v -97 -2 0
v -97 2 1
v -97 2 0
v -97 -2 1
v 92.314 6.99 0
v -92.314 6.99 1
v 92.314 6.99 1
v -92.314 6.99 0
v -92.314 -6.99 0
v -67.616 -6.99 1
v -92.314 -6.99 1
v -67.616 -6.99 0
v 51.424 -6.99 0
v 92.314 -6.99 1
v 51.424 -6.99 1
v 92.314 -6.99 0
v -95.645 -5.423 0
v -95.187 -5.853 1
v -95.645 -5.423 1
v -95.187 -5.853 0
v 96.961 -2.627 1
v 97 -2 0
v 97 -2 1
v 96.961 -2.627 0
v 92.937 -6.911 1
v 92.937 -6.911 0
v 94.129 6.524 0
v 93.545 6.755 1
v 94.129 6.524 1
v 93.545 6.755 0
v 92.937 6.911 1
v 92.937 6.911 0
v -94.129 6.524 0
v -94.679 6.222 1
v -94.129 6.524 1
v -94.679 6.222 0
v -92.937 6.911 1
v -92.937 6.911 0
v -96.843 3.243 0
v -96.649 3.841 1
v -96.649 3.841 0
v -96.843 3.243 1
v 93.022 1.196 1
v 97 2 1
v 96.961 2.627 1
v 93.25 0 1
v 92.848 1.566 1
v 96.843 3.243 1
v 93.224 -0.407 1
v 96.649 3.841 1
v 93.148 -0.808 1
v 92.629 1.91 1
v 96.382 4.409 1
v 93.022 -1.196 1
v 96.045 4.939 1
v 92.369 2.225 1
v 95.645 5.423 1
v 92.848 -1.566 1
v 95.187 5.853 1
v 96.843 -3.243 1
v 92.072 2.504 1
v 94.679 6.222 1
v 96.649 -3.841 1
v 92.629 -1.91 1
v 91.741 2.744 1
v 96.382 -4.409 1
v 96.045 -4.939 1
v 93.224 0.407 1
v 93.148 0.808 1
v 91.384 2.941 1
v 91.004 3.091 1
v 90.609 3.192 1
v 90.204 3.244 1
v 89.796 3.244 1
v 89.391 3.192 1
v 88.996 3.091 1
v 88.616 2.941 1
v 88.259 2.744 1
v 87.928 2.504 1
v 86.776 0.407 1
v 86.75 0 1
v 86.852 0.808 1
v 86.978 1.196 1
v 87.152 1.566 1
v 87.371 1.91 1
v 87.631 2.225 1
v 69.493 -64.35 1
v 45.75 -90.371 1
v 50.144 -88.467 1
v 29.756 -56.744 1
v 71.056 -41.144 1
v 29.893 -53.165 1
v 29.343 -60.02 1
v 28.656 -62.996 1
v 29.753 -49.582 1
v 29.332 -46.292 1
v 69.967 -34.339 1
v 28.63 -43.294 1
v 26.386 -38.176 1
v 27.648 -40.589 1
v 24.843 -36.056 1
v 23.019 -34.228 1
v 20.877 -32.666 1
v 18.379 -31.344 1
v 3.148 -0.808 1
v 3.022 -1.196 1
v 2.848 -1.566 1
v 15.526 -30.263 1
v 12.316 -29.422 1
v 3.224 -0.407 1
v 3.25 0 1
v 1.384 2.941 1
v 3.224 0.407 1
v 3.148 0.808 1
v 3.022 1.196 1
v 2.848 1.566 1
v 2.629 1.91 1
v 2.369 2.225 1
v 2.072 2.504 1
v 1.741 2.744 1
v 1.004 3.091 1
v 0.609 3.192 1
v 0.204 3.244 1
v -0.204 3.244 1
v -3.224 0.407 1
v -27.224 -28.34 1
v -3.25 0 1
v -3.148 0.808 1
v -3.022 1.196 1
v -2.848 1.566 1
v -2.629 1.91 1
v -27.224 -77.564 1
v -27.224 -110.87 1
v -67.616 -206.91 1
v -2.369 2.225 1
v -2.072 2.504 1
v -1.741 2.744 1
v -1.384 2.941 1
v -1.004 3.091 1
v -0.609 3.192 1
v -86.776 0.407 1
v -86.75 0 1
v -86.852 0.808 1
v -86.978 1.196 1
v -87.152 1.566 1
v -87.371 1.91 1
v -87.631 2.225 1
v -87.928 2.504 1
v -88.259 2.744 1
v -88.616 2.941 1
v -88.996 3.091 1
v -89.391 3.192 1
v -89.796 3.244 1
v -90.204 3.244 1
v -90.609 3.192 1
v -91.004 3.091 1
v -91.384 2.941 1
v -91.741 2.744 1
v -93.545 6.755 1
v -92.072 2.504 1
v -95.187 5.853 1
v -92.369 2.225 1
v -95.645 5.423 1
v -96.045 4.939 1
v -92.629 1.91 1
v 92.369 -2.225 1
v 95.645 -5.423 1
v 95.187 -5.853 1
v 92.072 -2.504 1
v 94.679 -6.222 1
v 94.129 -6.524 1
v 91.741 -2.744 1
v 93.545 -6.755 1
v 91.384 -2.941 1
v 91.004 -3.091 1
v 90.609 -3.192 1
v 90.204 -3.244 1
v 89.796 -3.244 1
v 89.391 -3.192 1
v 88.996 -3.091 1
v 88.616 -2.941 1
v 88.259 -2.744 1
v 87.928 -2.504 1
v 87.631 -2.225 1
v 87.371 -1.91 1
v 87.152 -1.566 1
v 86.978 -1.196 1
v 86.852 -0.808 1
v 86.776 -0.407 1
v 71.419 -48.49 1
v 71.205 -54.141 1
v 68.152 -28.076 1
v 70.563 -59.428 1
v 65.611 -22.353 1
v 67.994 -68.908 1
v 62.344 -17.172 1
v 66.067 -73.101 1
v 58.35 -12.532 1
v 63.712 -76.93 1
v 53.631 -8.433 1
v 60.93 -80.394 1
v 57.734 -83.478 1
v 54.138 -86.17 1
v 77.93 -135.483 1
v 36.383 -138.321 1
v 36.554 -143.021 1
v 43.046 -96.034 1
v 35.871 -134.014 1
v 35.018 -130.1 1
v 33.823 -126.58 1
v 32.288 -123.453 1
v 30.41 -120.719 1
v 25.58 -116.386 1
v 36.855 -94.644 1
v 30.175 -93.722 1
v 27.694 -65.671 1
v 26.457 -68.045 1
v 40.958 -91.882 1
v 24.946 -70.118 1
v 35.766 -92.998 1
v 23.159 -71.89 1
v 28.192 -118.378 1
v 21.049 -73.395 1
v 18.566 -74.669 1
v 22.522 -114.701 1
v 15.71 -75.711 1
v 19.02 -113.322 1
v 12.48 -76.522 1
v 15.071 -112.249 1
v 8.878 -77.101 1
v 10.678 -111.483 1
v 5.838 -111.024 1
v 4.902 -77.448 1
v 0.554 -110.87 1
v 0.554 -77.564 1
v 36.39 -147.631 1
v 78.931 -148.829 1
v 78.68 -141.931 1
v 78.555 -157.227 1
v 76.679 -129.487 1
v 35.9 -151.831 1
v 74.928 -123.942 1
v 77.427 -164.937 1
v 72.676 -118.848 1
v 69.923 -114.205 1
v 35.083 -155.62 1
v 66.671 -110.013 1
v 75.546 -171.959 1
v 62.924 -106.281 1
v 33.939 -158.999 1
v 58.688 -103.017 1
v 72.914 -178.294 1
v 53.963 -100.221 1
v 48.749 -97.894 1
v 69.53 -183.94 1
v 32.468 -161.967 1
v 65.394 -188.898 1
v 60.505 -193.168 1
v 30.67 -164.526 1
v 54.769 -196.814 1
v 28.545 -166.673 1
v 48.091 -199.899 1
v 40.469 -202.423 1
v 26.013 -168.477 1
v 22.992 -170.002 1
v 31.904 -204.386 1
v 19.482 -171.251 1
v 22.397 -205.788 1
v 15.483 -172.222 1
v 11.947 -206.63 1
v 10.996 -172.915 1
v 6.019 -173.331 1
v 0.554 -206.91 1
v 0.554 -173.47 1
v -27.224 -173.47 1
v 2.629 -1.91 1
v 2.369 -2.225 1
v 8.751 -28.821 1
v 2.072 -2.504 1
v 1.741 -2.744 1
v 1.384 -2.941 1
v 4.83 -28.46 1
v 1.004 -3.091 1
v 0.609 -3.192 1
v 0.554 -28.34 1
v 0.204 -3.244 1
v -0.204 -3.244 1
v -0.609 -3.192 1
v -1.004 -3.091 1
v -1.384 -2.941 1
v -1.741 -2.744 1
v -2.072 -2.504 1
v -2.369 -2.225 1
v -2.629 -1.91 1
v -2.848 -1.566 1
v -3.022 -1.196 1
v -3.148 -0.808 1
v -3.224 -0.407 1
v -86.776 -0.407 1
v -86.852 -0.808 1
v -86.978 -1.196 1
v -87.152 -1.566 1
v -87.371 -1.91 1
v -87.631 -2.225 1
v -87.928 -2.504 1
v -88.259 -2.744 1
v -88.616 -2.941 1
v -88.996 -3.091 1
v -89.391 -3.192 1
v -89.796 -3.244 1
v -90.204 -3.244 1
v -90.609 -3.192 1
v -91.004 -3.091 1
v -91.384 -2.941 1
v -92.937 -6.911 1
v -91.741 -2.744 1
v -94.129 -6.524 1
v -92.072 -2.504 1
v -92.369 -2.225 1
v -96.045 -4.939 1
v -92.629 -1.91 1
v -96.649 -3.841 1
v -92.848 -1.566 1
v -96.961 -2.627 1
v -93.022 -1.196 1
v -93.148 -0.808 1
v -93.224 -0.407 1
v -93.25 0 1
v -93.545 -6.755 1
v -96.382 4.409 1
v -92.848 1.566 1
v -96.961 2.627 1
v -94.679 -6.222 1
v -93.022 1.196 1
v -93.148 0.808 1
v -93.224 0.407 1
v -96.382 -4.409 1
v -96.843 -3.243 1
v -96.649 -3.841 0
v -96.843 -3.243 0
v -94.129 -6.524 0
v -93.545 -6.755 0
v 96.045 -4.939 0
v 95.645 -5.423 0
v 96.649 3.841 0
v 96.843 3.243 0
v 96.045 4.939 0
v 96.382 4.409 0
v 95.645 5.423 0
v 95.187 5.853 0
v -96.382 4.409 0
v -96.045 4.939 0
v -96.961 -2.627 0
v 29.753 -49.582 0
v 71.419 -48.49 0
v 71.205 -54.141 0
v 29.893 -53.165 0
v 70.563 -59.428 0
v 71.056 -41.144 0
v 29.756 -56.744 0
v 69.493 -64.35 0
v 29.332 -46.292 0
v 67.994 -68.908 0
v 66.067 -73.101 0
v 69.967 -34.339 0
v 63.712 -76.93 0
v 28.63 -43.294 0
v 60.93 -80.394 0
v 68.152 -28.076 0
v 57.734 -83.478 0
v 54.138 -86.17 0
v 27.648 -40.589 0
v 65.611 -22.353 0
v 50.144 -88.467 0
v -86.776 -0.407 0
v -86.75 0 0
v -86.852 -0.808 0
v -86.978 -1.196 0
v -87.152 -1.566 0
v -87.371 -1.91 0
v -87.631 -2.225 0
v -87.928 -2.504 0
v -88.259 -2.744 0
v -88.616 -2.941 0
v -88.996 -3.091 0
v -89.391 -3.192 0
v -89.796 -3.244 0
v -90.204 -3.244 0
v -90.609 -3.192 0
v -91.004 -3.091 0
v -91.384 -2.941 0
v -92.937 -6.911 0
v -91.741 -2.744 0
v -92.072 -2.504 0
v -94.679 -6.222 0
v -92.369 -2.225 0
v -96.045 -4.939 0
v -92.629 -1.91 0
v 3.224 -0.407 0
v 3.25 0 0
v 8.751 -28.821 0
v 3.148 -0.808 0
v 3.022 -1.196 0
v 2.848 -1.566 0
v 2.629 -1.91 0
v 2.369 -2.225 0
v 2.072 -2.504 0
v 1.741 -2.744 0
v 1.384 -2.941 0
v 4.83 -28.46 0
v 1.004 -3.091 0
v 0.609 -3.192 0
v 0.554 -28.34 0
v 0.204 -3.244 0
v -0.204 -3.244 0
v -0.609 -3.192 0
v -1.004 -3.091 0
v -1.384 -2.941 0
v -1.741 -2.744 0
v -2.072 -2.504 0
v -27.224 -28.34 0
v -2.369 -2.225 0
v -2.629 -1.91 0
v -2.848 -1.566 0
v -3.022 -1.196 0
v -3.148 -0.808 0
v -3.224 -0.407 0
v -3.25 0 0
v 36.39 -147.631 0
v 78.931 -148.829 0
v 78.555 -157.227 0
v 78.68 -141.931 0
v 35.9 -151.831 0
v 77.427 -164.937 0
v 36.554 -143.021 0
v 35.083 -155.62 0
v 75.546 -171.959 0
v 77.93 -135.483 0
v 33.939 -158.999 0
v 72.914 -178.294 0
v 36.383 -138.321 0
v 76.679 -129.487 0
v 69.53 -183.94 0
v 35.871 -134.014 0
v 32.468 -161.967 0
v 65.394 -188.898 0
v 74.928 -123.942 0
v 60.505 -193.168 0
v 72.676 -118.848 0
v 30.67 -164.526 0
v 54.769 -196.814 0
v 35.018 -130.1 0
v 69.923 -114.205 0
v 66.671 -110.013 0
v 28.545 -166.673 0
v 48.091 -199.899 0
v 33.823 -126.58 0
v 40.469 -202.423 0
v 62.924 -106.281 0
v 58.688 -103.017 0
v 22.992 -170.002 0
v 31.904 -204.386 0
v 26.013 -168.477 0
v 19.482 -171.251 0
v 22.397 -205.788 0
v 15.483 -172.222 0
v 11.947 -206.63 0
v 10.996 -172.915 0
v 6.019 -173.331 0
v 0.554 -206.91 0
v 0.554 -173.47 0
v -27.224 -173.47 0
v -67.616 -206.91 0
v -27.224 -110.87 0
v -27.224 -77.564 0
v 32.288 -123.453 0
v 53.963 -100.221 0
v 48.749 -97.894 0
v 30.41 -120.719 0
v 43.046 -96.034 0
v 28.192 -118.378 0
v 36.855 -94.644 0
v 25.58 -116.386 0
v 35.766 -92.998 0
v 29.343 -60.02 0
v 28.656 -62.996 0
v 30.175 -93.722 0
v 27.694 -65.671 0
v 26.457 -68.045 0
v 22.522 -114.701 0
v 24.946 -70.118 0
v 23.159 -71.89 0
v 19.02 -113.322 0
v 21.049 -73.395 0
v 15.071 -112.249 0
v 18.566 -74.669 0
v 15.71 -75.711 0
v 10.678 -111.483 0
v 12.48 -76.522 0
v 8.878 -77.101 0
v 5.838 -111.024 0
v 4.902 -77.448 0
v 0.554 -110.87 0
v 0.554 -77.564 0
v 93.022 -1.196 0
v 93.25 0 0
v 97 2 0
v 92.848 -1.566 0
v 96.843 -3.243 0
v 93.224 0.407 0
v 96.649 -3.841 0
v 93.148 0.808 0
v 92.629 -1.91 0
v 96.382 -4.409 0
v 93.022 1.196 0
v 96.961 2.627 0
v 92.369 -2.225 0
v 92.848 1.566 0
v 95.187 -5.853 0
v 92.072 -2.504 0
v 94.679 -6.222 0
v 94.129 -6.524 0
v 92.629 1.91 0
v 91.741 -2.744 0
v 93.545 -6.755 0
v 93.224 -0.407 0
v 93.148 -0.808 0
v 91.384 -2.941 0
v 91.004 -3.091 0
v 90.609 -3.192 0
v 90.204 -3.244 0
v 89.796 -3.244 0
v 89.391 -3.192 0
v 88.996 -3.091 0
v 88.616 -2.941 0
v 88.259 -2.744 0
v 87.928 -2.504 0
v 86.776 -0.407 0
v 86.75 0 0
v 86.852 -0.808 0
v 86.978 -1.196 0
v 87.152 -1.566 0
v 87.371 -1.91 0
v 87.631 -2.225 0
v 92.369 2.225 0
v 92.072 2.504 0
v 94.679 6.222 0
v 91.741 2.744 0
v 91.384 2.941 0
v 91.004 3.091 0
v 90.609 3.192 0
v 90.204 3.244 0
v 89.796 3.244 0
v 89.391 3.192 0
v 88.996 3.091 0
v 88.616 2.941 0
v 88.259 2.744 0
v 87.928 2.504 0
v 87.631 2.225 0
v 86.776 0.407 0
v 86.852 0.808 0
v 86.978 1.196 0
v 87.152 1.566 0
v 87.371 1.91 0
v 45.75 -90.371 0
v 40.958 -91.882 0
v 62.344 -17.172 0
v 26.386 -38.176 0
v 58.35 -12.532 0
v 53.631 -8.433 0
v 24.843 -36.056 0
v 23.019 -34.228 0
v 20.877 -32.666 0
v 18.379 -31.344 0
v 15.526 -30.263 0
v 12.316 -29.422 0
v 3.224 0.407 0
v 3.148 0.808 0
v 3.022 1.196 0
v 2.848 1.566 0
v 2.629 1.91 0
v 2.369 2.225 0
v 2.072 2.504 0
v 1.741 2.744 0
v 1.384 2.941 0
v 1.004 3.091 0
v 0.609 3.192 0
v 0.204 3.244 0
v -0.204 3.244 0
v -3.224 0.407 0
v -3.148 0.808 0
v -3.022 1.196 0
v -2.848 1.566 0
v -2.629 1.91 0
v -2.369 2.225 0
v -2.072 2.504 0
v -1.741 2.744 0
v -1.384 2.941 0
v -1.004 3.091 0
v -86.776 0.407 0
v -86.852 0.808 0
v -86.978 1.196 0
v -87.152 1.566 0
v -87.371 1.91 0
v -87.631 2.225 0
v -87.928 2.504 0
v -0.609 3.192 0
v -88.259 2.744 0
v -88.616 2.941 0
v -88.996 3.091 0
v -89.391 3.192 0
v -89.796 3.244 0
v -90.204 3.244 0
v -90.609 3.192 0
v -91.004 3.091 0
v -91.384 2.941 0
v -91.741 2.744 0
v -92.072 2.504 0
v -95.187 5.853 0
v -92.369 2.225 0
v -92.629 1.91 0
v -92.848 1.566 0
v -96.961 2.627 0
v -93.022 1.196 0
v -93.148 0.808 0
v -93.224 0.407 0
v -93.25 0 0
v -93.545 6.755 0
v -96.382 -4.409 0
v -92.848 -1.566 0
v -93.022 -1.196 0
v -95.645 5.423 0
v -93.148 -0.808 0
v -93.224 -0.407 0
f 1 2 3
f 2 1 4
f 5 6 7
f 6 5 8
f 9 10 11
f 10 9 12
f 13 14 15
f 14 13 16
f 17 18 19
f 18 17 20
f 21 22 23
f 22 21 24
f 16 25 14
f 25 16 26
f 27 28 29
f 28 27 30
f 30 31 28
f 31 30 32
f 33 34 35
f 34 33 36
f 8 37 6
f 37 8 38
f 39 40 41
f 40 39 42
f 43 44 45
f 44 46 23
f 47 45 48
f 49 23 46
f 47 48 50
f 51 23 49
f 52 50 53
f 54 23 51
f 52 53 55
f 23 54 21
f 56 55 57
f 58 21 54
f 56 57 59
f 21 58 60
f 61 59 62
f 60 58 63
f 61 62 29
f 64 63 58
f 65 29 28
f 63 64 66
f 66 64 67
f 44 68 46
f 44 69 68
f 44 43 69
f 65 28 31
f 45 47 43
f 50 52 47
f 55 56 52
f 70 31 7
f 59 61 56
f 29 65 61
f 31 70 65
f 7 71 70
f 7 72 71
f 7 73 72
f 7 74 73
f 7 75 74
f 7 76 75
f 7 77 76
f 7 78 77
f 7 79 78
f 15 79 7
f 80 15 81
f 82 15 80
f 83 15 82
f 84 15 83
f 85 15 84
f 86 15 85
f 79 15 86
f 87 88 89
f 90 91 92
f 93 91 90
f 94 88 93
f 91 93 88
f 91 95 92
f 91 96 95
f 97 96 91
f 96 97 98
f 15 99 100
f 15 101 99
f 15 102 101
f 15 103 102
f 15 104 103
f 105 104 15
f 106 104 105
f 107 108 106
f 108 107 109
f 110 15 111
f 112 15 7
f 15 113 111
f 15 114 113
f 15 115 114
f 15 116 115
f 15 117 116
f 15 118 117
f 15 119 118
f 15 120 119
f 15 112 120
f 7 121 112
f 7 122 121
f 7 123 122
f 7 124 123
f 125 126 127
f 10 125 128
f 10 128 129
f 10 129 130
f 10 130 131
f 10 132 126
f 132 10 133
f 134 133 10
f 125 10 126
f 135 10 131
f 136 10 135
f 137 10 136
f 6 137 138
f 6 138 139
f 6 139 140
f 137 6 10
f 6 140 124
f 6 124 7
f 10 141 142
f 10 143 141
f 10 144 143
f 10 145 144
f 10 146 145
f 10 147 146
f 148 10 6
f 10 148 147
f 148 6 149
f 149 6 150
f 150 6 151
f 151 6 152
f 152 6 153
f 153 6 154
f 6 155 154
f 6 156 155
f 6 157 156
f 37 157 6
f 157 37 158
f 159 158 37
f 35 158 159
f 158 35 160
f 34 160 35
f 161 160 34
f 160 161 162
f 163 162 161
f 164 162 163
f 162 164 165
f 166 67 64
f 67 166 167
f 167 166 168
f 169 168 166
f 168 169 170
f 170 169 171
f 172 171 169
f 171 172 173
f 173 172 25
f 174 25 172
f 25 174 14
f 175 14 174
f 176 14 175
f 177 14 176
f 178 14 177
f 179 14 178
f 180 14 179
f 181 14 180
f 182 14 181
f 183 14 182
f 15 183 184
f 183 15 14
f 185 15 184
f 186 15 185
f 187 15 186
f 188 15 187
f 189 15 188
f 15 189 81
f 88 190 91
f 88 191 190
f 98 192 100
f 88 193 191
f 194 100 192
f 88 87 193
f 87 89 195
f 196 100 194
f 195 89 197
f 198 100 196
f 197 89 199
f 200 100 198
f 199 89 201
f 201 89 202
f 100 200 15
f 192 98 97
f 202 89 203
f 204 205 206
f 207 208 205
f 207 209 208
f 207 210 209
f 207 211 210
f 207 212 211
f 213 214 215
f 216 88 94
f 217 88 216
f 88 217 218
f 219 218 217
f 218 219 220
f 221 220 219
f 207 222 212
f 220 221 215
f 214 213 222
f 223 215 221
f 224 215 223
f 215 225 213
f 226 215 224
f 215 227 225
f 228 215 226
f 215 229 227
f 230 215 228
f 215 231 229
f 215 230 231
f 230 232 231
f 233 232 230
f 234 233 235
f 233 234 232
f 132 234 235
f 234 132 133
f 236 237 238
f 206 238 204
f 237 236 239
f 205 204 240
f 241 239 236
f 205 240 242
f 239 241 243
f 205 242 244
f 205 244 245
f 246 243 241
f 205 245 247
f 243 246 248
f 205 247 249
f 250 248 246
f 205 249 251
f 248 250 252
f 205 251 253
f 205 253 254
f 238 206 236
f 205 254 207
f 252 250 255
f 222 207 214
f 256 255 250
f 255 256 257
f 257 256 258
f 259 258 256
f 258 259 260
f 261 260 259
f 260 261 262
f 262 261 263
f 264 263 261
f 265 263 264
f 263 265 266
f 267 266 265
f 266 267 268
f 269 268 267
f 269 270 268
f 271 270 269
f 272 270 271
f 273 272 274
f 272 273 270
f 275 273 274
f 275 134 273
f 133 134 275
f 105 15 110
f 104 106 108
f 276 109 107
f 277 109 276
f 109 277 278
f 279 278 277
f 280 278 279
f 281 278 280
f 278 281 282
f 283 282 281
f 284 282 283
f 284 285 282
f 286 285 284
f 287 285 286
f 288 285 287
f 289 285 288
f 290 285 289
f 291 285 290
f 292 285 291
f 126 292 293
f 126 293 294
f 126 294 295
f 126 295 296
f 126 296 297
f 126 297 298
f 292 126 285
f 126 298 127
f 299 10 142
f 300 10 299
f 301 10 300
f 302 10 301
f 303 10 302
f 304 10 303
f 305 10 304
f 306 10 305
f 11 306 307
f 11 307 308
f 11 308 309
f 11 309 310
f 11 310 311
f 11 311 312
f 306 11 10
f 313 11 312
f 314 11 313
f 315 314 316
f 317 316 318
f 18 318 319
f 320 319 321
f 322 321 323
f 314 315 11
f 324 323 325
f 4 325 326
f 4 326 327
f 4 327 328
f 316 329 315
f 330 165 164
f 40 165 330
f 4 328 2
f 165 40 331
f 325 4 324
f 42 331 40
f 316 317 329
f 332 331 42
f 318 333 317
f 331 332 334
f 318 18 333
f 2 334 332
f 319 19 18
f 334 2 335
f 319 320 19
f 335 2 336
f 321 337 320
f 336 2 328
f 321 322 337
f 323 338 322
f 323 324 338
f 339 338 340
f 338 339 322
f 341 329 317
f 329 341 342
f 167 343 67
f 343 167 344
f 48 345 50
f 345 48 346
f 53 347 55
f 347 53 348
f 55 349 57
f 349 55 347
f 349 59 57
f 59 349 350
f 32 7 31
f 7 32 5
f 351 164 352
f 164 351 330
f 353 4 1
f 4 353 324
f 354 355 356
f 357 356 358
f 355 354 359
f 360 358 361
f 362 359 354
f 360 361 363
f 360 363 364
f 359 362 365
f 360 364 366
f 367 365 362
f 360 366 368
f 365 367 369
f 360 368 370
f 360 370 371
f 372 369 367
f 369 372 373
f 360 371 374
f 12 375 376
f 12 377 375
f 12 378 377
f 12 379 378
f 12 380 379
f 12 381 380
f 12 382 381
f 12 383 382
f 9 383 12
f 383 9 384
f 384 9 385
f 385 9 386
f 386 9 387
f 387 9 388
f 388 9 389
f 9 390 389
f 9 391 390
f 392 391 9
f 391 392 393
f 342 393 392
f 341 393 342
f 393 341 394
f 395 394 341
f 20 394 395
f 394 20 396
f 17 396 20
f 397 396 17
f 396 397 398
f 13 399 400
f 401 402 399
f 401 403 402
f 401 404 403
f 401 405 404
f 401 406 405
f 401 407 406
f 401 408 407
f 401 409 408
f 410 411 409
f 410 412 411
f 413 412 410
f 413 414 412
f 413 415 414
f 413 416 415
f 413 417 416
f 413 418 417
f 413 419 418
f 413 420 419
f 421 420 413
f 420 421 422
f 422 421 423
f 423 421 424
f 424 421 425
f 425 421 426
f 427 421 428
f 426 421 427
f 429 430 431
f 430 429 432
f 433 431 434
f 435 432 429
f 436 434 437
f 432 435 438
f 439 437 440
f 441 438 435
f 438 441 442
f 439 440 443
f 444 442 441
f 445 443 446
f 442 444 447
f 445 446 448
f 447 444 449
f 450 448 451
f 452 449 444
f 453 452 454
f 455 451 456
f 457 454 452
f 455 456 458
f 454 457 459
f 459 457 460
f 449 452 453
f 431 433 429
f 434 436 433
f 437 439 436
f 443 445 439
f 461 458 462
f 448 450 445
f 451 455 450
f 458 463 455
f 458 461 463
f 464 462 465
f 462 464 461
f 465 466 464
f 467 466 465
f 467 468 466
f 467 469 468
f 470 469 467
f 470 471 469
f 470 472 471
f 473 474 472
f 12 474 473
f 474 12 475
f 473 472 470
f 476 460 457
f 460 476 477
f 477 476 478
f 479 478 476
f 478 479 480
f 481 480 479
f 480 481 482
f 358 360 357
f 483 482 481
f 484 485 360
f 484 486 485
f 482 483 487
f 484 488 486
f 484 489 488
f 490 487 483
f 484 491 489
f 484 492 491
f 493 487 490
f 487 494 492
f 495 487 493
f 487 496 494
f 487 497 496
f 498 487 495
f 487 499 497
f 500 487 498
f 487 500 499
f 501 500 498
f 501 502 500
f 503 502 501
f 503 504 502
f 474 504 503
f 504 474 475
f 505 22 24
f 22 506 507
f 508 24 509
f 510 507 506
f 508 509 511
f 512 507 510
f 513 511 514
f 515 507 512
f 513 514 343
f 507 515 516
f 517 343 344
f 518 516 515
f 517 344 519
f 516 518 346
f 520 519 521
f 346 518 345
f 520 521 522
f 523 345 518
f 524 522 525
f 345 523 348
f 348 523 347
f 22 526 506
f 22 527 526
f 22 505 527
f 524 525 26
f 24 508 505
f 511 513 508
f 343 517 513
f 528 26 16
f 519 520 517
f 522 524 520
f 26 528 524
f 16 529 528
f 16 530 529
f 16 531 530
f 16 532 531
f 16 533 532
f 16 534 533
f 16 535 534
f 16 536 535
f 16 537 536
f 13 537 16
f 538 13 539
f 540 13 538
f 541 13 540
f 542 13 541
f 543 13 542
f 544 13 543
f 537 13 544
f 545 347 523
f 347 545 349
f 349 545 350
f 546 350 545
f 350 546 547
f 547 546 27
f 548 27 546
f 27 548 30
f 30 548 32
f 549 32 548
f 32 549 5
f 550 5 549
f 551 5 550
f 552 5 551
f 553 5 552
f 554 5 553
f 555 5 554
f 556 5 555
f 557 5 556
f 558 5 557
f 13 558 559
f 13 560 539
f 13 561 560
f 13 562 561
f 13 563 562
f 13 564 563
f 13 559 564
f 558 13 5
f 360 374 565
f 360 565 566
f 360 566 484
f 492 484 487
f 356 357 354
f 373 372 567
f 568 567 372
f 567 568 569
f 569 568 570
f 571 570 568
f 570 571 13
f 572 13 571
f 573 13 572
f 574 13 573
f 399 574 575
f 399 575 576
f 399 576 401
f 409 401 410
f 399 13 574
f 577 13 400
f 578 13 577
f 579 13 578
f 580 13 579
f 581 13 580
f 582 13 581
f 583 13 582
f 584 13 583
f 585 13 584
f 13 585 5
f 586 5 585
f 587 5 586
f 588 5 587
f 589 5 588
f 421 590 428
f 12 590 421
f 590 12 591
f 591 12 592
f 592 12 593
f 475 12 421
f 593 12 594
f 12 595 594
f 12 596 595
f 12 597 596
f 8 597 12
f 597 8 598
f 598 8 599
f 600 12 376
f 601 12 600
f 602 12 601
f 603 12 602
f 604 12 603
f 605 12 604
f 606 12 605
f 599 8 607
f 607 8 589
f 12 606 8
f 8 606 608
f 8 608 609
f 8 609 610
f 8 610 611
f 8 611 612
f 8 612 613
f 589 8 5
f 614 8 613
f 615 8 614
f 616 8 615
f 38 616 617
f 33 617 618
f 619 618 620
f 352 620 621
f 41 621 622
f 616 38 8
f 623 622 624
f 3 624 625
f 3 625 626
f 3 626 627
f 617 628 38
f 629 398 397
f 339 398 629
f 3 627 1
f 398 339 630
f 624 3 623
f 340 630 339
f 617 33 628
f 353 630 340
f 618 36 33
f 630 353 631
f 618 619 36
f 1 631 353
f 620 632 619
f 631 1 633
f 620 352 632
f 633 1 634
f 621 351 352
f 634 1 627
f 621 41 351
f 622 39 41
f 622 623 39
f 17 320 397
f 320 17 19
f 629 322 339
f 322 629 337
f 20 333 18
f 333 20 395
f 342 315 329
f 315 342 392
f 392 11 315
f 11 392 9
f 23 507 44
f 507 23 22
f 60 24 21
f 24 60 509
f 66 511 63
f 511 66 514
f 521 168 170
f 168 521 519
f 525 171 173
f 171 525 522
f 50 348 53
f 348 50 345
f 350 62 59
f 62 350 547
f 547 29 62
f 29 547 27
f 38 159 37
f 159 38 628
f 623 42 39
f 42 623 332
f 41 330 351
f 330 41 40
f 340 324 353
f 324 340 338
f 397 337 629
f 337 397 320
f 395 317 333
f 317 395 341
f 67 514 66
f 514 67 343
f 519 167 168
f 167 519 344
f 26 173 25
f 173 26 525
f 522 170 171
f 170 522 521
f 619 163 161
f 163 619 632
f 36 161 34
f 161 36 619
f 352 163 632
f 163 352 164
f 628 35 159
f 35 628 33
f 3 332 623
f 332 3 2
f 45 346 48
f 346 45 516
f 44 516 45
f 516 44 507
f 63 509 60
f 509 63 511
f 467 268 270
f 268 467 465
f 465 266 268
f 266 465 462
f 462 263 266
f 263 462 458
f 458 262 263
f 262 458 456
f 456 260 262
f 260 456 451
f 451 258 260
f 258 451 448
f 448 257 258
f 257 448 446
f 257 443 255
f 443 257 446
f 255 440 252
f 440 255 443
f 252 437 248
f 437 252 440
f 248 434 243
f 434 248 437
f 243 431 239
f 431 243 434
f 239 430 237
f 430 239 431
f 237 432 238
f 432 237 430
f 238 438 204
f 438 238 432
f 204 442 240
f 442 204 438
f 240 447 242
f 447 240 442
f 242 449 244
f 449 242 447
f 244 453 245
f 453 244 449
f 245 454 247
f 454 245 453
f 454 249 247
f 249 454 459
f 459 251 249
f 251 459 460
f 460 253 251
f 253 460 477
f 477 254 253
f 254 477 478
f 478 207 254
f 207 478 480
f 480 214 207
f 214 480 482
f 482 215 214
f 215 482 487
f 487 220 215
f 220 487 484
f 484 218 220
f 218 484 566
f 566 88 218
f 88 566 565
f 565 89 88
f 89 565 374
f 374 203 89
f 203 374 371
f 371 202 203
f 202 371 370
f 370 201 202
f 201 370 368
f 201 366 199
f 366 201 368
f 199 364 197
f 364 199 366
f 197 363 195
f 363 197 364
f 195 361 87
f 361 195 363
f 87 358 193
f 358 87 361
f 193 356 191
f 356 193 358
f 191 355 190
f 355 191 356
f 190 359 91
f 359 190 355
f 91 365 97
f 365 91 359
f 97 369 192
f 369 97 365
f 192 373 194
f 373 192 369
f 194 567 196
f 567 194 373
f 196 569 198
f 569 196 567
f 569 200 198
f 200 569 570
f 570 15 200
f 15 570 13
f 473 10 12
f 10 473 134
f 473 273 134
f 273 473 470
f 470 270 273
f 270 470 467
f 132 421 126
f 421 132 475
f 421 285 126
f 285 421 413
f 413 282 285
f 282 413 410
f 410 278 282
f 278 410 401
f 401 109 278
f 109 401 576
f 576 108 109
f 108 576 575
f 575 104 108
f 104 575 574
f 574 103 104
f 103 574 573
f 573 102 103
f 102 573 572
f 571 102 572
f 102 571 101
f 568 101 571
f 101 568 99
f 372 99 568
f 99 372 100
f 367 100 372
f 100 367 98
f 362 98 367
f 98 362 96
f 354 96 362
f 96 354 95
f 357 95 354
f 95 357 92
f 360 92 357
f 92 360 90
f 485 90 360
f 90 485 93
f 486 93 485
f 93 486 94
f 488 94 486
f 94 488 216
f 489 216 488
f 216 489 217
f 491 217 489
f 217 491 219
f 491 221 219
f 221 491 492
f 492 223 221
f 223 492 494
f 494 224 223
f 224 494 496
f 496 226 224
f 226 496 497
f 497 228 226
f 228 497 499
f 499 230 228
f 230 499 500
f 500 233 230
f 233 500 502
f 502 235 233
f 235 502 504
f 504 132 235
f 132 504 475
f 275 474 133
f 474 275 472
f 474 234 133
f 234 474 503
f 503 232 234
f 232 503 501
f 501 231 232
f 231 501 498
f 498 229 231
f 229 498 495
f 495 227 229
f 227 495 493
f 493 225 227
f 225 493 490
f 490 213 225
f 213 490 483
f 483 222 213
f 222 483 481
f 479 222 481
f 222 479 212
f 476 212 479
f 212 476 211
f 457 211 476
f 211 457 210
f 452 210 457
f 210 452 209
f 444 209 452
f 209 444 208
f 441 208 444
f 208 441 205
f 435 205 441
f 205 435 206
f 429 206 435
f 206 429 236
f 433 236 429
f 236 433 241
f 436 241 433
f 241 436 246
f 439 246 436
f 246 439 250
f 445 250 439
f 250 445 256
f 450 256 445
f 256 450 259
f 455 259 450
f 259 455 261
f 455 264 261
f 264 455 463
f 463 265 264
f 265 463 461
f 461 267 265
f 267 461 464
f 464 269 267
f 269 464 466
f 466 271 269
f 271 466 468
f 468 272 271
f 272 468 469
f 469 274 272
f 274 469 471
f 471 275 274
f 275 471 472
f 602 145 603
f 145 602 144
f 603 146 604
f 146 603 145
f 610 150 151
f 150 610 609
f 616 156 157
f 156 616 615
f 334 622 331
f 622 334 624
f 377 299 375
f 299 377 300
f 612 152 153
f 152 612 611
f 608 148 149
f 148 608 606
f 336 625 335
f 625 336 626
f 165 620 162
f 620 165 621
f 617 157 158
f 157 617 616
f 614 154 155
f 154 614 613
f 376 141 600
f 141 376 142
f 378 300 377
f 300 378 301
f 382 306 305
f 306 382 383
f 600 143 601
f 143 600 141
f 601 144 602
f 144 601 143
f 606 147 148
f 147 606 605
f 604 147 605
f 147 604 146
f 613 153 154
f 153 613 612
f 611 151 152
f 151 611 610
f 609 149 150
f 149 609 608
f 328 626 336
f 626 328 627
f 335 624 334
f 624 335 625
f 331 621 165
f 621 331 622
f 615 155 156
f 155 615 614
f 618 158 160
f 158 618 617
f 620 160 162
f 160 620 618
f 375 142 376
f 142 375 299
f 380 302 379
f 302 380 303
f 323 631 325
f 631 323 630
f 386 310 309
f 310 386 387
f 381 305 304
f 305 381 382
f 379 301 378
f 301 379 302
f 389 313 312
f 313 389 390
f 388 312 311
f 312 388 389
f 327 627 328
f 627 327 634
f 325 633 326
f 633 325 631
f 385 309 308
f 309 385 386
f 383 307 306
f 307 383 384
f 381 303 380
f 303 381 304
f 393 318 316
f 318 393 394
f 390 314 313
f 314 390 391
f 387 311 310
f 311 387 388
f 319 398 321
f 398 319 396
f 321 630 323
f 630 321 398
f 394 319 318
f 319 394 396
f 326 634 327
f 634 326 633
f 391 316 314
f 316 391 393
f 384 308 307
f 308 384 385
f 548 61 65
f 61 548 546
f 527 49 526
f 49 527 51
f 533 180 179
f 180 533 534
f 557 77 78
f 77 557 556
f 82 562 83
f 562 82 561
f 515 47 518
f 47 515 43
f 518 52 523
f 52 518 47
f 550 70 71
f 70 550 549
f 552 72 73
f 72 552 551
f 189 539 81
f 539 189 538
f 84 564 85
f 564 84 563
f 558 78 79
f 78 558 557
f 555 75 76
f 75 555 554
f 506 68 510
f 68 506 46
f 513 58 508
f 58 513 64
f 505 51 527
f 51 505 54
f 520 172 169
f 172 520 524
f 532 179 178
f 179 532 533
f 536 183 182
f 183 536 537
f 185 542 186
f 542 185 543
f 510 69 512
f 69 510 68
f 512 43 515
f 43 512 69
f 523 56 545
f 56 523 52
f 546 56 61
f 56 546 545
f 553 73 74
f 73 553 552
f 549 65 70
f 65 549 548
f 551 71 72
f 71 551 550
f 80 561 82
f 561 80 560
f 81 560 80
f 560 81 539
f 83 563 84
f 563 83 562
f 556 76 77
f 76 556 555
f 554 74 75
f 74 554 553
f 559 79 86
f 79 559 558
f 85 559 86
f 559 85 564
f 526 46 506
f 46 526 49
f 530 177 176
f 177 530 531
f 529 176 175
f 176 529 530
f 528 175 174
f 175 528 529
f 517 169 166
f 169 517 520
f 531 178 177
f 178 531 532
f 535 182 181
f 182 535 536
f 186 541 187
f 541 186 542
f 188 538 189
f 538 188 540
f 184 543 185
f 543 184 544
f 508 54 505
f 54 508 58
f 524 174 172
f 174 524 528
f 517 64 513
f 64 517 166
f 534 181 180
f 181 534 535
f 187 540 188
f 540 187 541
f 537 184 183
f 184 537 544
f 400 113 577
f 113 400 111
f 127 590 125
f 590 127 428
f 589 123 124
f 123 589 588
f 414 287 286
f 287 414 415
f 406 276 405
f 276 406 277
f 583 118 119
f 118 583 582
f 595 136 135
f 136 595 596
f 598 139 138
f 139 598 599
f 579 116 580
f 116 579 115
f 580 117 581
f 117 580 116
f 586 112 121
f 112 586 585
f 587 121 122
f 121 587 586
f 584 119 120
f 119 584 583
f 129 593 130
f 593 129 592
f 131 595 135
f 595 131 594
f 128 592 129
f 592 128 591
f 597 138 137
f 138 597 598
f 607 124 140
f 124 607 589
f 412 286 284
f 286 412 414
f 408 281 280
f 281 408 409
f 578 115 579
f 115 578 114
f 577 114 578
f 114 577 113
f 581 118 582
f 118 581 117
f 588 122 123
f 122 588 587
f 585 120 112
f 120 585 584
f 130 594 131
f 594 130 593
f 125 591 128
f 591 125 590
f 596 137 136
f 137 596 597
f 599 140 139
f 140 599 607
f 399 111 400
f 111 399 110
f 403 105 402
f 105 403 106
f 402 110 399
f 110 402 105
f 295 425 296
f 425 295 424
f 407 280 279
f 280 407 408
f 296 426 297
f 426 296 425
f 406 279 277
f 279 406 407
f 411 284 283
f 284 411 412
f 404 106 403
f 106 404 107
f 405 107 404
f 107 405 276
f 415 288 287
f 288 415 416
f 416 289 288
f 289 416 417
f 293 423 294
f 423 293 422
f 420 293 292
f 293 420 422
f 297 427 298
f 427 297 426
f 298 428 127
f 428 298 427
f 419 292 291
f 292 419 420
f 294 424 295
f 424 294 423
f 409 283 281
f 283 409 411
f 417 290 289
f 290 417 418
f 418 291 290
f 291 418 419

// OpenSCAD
$fn = 50;


difference() {
	union() {
		translate(v = [0, 0, 0]) {
			rotate(a = [0, 0, 0]) {
				hull() {
					translate(v = [-92.0000000000, 2.0000000000, 0]) {
						rotate(a = [0, 0, 0]) {
							translate(v = [0, 0, 0]) {
								rotate(a = [0, 0, 0]) {
									cylinder(h = 1, r = 5);
								}
							}
						}
					}
					translate(v = [92.0000000000, 2.0000000000, 0]) {
						rotate(a = [0, 0, 0]) {
							translate(v = [0, 0, 0]) {
								rotate(a = [0, 0, 0]) {
									cylinder(h = 1, r = 5);
								}
							}
						}
					}
					translate(v = [-92.0000000000, -2.0000000000, 0]) {
						rotate(a = [0, 0, 0]) {
							translate(v = [0, 0, 0]) {
								rotate(a = [0, 0, 0]) {
									cylinder(h = 1, r = 5);
								}
							}
						}
					}
					translate(v = [92.0000000000, -2.0000000000, 0]) {
						rotate(a = [0, 0, 0]) {
							translate(v = [0, 0, 0]) {
								rotate(a = [0, 0, 0]) {
									cylinder(h = 1, r = 5);
								}
							}
						}
					}
				}
			}
		}
		translate(v = [0, 0, 0]) {
			rotate(a = [0, 0, 0]) {
				linear_extrude(height = 1) {
					text(font = "DejaVu Sans Mono:style=Bold", halign = "center", size = 209.0000000000, text = "B", valign = "top");
				}
			}
		}
	}
	union() {
		translate(v = [-90.0000000000, 0.0000000000, -125.0000000000]) {
			rotate(a = [0, 0, 0]) {
				cylinder(h = 250, r = 3.2500000000);
			}
		}
		translate(v = [90.0000000000, 0.0000000000, -125.0000000000]) {
			rotate(a = [0, 0, 0]) {
				cylinder(h = 250, r = 3.2500000000);
			}
		}
		translate(v = [90.0000000000, 0.0000000000, -125.0000000000]) {
			rotate(a = [0, 0, 0]) {
				cylinder(h = 250, r = 3.2500000000);
			}
		}
		translate(v = [0, 0, -125.0000000000]) {
			rotate(a = [0, 0, 0]) {
				cylinder(h = 250, r = 3.2500000000);
			}
		}
	}
}
